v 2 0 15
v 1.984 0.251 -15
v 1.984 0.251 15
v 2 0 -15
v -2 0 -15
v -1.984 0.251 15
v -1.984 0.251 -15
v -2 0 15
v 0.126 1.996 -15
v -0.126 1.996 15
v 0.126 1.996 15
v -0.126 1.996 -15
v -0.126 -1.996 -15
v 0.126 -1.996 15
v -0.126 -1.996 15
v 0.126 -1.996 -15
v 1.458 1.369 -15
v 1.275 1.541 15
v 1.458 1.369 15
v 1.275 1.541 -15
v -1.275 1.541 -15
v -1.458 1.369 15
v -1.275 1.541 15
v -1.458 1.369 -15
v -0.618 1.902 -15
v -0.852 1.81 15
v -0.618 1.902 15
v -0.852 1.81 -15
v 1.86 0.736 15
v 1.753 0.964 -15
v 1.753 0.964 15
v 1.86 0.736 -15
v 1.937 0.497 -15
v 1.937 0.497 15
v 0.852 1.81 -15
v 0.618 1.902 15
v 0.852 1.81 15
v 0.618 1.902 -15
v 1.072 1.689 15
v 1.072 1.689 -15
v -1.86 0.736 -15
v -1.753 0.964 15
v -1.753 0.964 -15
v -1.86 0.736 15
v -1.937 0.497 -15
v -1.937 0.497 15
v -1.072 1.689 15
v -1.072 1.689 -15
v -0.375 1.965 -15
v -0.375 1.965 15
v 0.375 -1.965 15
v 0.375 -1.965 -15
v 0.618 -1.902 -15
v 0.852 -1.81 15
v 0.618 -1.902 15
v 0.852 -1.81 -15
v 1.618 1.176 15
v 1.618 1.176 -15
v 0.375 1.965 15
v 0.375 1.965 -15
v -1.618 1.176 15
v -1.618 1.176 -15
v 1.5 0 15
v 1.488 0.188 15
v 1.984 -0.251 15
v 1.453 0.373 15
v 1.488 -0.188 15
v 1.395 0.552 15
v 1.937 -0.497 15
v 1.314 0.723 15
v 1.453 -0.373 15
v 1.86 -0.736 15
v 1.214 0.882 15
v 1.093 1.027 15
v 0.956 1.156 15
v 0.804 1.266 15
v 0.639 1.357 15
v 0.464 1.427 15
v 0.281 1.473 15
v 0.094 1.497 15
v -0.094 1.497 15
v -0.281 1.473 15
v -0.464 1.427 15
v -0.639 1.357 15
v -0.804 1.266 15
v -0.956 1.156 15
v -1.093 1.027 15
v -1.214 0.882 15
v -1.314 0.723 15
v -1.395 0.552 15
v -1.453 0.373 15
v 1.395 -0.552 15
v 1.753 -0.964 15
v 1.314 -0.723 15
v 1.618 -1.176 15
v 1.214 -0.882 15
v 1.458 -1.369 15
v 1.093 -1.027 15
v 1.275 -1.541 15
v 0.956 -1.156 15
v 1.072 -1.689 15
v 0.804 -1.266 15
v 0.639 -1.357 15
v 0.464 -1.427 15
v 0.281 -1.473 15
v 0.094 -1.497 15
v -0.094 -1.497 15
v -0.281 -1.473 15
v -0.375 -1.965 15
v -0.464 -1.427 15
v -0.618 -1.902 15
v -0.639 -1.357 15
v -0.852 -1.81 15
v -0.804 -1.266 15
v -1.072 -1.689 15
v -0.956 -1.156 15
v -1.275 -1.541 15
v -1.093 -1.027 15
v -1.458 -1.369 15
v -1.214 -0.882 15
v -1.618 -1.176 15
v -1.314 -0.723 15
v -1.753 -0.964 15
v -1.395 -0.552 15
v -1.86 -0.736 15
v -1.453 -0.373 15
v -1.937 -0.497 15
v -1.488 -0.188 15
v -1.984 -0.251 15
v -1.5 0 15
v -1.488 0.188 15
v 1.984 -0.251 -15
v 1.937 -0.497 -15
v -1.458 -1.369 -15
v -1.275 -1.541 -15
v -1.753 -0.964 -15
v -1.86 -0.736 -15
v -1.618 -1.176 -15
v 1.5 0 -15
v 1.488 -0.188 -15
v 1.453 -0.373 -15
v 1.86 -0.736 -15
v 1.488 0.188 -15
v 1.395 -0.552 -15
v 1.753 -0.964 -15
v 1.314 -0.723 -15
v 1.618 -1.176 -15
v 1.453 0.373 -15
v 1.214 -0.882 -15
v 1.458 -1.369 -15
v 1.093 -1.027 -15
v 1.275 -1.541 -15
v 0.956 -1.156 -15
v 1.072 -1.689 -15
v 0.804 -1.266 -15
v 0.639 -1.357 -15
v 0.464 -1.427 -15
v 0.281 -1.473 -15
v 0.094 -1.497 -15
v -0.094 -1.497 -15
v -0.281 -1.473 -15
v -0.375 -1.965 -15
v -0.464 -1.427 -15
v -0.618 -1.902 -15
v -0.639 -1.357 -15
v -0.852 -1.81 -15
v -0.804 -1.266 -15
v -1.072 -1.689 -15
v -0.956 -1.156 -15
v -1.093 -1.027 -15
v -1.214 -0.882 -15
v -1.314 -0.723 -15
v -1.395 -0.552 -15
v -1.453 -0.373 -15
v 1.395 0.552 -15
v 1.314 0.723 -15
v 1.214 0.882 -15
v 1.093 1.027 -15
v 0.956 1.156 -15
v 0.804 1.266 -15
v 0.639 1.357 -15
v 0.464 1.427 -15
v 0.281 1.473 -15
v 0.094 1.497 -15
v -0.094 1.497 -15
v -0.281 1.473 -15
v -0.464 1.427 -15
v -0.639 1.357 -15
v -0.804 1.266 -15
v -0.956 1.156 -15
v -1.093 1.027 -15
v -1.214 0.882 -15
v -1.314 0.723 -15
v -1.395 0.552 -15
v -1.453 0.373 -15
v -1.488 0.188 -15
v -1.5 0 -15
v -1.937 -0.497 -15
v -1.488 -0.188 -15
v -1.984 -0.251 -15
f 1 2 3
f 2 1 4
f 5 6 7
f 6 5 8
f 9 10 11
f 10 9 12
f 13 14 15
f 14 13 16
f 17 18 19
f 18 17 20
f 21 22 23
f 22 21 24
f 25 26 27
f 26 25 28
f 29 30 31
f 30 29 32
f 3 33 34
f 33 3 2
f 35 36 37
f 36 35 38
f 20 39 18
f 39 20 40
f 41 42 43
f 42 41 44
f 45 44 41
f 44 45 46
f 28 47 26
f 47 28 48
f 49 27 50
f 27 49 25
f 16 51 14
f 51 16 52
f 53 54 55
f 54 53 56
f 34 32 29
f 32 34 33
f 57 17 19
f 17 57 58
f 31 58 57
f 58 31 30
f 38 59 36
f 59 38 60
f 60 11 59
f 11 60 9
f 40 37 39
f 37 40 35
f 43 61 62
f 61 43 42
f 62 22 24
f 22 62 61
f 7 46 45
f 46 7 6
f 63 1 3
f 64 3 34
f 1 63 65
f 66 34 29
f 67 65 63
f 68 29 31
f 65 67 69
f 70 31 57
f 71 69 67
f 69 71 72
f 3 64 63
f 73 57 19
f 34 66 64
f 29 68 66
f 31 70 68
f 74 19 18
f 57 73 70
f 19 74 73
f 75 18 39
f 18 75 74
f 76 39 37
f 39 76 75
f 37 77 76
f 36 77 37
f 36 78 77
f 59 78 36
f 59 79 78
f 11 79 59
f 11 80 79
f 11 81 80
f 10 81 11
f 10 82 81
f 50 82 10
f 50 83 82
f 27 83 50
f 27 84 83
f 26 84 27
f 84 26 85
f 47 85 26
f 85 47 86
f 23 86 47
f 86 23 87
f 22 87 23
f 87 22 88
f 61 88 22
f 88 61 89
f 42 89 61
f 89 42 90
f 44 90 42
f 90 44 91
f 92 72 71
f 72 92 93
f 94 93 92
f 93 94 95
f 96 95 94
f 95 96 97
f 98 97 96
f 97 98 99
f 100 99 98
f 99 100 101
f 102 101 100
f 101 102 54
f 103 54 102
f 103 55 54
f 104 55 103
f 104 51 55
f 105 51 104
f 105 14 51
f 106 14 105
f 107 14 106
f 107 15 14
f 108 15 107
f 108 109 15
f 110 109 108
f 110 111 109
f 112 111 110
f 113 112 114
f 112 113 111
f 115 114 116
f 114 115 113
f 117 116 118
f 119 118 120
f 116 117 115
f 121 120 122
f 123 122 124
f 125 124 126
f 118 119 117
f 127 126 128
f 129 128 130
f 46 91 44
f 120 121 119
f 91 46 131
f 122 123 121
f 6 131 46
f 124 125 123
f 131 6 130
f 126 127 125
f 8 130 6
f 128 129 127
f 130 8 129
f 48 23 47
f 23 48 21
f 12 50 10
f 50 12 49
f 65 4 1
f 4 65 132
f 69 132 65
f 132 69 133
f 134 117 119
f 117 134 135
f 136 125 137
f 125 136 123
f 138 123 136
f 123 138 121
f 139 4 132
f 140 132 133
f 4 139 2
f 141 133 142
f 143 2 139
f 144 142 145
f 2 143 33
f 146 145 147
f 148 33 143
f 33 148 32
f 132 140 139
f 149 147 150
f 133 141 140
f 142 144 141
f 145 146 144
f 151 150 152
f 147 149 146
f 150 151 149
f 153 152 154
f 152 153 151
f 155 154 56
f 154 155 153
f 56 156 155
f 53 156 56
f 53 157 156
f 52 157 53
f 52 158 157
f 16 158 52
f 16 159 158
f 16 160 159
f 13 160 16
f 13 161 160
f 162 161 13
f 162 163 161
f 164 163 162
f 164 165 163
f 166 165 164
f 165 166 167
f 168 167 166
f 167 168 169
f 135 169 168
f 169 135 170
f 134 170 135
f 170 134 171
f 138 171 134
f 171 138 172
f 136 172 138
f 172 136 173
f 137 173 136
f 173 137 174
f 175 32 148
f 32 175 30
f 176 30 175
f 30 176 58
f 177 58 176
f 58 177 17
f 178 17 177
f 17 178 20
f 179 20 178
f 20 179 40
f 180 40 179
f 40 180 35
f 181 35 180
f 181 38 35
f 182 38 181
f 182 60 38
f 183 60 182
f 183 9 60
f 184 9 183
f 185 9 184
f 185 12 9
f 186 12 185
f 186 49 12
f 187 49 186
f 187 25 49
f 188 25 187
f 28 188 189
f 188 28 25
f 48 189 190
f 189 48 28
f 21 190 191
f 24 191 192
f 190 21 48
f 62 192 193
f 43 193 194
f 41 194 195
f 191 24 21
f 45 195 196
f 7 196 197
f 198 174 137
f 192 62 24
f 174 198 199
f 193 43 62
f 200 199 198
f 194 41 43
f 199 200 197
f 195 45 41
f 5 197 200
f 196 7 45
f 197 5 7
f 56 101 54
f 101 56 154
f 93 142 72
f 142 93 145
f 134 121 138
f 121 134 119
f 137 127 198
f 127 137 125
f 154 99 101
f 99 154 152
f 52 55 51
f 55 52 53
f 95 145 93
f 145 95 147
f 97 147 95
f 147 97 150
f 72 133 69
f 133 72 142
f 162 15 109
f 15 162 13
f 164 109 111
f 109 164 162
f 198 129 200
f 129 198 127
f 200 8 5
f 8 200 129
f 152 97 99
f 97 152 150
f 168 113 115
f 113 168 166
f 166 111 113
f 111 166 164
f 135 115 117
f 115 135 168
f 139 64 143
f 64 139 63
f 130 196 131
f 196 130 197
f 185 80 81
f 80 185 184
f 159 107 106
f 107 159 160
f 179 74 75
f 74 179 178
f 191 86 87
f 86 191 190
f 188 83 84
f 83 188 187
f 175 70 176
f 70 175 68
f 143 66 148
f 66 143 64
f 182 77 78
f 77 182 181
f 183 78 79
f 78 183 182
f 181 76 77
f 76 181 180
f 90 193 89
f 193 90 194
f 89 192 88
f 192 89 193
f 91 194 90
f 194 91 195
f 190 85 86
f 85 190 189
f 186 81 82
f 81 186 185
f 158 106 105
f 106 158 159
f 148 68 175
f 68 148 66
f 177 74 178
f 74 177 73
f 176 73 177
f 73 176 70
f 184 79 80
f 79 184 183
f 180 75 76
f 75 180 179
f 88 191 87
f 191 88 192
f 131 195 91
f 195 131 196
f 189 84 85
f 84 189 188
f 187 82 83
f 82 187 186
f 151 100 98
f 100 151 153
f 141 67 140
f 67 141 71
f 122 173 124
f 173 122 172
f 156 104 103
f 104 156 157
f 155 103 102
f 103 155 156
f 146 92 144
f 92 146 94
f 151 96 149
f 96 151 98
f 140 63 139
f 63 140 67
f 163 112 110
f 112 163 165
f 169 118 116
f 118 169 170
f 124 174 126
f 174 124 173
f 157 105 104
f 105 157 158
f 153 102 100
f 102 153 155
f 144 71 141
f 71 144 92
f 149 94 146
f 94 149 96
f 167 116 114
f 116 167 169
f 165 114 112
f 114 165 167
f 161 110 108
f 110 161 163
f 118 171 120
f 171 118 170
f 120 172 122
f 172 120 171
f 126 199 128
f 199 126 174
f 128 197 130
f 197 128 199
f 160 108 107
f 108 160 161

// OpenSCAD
$fn = 50;


difference() {
	union() {
		translate(v = [0, 0, -15.0000000000]) {
			cylinder(h = 30, r = 2.0000000000);
		}
	}
	union() {
		translate(v = [0, 0, -100.0000000000]) {
			cylinder(h = 200, r = 1.5000000000);
		}
	}
}
